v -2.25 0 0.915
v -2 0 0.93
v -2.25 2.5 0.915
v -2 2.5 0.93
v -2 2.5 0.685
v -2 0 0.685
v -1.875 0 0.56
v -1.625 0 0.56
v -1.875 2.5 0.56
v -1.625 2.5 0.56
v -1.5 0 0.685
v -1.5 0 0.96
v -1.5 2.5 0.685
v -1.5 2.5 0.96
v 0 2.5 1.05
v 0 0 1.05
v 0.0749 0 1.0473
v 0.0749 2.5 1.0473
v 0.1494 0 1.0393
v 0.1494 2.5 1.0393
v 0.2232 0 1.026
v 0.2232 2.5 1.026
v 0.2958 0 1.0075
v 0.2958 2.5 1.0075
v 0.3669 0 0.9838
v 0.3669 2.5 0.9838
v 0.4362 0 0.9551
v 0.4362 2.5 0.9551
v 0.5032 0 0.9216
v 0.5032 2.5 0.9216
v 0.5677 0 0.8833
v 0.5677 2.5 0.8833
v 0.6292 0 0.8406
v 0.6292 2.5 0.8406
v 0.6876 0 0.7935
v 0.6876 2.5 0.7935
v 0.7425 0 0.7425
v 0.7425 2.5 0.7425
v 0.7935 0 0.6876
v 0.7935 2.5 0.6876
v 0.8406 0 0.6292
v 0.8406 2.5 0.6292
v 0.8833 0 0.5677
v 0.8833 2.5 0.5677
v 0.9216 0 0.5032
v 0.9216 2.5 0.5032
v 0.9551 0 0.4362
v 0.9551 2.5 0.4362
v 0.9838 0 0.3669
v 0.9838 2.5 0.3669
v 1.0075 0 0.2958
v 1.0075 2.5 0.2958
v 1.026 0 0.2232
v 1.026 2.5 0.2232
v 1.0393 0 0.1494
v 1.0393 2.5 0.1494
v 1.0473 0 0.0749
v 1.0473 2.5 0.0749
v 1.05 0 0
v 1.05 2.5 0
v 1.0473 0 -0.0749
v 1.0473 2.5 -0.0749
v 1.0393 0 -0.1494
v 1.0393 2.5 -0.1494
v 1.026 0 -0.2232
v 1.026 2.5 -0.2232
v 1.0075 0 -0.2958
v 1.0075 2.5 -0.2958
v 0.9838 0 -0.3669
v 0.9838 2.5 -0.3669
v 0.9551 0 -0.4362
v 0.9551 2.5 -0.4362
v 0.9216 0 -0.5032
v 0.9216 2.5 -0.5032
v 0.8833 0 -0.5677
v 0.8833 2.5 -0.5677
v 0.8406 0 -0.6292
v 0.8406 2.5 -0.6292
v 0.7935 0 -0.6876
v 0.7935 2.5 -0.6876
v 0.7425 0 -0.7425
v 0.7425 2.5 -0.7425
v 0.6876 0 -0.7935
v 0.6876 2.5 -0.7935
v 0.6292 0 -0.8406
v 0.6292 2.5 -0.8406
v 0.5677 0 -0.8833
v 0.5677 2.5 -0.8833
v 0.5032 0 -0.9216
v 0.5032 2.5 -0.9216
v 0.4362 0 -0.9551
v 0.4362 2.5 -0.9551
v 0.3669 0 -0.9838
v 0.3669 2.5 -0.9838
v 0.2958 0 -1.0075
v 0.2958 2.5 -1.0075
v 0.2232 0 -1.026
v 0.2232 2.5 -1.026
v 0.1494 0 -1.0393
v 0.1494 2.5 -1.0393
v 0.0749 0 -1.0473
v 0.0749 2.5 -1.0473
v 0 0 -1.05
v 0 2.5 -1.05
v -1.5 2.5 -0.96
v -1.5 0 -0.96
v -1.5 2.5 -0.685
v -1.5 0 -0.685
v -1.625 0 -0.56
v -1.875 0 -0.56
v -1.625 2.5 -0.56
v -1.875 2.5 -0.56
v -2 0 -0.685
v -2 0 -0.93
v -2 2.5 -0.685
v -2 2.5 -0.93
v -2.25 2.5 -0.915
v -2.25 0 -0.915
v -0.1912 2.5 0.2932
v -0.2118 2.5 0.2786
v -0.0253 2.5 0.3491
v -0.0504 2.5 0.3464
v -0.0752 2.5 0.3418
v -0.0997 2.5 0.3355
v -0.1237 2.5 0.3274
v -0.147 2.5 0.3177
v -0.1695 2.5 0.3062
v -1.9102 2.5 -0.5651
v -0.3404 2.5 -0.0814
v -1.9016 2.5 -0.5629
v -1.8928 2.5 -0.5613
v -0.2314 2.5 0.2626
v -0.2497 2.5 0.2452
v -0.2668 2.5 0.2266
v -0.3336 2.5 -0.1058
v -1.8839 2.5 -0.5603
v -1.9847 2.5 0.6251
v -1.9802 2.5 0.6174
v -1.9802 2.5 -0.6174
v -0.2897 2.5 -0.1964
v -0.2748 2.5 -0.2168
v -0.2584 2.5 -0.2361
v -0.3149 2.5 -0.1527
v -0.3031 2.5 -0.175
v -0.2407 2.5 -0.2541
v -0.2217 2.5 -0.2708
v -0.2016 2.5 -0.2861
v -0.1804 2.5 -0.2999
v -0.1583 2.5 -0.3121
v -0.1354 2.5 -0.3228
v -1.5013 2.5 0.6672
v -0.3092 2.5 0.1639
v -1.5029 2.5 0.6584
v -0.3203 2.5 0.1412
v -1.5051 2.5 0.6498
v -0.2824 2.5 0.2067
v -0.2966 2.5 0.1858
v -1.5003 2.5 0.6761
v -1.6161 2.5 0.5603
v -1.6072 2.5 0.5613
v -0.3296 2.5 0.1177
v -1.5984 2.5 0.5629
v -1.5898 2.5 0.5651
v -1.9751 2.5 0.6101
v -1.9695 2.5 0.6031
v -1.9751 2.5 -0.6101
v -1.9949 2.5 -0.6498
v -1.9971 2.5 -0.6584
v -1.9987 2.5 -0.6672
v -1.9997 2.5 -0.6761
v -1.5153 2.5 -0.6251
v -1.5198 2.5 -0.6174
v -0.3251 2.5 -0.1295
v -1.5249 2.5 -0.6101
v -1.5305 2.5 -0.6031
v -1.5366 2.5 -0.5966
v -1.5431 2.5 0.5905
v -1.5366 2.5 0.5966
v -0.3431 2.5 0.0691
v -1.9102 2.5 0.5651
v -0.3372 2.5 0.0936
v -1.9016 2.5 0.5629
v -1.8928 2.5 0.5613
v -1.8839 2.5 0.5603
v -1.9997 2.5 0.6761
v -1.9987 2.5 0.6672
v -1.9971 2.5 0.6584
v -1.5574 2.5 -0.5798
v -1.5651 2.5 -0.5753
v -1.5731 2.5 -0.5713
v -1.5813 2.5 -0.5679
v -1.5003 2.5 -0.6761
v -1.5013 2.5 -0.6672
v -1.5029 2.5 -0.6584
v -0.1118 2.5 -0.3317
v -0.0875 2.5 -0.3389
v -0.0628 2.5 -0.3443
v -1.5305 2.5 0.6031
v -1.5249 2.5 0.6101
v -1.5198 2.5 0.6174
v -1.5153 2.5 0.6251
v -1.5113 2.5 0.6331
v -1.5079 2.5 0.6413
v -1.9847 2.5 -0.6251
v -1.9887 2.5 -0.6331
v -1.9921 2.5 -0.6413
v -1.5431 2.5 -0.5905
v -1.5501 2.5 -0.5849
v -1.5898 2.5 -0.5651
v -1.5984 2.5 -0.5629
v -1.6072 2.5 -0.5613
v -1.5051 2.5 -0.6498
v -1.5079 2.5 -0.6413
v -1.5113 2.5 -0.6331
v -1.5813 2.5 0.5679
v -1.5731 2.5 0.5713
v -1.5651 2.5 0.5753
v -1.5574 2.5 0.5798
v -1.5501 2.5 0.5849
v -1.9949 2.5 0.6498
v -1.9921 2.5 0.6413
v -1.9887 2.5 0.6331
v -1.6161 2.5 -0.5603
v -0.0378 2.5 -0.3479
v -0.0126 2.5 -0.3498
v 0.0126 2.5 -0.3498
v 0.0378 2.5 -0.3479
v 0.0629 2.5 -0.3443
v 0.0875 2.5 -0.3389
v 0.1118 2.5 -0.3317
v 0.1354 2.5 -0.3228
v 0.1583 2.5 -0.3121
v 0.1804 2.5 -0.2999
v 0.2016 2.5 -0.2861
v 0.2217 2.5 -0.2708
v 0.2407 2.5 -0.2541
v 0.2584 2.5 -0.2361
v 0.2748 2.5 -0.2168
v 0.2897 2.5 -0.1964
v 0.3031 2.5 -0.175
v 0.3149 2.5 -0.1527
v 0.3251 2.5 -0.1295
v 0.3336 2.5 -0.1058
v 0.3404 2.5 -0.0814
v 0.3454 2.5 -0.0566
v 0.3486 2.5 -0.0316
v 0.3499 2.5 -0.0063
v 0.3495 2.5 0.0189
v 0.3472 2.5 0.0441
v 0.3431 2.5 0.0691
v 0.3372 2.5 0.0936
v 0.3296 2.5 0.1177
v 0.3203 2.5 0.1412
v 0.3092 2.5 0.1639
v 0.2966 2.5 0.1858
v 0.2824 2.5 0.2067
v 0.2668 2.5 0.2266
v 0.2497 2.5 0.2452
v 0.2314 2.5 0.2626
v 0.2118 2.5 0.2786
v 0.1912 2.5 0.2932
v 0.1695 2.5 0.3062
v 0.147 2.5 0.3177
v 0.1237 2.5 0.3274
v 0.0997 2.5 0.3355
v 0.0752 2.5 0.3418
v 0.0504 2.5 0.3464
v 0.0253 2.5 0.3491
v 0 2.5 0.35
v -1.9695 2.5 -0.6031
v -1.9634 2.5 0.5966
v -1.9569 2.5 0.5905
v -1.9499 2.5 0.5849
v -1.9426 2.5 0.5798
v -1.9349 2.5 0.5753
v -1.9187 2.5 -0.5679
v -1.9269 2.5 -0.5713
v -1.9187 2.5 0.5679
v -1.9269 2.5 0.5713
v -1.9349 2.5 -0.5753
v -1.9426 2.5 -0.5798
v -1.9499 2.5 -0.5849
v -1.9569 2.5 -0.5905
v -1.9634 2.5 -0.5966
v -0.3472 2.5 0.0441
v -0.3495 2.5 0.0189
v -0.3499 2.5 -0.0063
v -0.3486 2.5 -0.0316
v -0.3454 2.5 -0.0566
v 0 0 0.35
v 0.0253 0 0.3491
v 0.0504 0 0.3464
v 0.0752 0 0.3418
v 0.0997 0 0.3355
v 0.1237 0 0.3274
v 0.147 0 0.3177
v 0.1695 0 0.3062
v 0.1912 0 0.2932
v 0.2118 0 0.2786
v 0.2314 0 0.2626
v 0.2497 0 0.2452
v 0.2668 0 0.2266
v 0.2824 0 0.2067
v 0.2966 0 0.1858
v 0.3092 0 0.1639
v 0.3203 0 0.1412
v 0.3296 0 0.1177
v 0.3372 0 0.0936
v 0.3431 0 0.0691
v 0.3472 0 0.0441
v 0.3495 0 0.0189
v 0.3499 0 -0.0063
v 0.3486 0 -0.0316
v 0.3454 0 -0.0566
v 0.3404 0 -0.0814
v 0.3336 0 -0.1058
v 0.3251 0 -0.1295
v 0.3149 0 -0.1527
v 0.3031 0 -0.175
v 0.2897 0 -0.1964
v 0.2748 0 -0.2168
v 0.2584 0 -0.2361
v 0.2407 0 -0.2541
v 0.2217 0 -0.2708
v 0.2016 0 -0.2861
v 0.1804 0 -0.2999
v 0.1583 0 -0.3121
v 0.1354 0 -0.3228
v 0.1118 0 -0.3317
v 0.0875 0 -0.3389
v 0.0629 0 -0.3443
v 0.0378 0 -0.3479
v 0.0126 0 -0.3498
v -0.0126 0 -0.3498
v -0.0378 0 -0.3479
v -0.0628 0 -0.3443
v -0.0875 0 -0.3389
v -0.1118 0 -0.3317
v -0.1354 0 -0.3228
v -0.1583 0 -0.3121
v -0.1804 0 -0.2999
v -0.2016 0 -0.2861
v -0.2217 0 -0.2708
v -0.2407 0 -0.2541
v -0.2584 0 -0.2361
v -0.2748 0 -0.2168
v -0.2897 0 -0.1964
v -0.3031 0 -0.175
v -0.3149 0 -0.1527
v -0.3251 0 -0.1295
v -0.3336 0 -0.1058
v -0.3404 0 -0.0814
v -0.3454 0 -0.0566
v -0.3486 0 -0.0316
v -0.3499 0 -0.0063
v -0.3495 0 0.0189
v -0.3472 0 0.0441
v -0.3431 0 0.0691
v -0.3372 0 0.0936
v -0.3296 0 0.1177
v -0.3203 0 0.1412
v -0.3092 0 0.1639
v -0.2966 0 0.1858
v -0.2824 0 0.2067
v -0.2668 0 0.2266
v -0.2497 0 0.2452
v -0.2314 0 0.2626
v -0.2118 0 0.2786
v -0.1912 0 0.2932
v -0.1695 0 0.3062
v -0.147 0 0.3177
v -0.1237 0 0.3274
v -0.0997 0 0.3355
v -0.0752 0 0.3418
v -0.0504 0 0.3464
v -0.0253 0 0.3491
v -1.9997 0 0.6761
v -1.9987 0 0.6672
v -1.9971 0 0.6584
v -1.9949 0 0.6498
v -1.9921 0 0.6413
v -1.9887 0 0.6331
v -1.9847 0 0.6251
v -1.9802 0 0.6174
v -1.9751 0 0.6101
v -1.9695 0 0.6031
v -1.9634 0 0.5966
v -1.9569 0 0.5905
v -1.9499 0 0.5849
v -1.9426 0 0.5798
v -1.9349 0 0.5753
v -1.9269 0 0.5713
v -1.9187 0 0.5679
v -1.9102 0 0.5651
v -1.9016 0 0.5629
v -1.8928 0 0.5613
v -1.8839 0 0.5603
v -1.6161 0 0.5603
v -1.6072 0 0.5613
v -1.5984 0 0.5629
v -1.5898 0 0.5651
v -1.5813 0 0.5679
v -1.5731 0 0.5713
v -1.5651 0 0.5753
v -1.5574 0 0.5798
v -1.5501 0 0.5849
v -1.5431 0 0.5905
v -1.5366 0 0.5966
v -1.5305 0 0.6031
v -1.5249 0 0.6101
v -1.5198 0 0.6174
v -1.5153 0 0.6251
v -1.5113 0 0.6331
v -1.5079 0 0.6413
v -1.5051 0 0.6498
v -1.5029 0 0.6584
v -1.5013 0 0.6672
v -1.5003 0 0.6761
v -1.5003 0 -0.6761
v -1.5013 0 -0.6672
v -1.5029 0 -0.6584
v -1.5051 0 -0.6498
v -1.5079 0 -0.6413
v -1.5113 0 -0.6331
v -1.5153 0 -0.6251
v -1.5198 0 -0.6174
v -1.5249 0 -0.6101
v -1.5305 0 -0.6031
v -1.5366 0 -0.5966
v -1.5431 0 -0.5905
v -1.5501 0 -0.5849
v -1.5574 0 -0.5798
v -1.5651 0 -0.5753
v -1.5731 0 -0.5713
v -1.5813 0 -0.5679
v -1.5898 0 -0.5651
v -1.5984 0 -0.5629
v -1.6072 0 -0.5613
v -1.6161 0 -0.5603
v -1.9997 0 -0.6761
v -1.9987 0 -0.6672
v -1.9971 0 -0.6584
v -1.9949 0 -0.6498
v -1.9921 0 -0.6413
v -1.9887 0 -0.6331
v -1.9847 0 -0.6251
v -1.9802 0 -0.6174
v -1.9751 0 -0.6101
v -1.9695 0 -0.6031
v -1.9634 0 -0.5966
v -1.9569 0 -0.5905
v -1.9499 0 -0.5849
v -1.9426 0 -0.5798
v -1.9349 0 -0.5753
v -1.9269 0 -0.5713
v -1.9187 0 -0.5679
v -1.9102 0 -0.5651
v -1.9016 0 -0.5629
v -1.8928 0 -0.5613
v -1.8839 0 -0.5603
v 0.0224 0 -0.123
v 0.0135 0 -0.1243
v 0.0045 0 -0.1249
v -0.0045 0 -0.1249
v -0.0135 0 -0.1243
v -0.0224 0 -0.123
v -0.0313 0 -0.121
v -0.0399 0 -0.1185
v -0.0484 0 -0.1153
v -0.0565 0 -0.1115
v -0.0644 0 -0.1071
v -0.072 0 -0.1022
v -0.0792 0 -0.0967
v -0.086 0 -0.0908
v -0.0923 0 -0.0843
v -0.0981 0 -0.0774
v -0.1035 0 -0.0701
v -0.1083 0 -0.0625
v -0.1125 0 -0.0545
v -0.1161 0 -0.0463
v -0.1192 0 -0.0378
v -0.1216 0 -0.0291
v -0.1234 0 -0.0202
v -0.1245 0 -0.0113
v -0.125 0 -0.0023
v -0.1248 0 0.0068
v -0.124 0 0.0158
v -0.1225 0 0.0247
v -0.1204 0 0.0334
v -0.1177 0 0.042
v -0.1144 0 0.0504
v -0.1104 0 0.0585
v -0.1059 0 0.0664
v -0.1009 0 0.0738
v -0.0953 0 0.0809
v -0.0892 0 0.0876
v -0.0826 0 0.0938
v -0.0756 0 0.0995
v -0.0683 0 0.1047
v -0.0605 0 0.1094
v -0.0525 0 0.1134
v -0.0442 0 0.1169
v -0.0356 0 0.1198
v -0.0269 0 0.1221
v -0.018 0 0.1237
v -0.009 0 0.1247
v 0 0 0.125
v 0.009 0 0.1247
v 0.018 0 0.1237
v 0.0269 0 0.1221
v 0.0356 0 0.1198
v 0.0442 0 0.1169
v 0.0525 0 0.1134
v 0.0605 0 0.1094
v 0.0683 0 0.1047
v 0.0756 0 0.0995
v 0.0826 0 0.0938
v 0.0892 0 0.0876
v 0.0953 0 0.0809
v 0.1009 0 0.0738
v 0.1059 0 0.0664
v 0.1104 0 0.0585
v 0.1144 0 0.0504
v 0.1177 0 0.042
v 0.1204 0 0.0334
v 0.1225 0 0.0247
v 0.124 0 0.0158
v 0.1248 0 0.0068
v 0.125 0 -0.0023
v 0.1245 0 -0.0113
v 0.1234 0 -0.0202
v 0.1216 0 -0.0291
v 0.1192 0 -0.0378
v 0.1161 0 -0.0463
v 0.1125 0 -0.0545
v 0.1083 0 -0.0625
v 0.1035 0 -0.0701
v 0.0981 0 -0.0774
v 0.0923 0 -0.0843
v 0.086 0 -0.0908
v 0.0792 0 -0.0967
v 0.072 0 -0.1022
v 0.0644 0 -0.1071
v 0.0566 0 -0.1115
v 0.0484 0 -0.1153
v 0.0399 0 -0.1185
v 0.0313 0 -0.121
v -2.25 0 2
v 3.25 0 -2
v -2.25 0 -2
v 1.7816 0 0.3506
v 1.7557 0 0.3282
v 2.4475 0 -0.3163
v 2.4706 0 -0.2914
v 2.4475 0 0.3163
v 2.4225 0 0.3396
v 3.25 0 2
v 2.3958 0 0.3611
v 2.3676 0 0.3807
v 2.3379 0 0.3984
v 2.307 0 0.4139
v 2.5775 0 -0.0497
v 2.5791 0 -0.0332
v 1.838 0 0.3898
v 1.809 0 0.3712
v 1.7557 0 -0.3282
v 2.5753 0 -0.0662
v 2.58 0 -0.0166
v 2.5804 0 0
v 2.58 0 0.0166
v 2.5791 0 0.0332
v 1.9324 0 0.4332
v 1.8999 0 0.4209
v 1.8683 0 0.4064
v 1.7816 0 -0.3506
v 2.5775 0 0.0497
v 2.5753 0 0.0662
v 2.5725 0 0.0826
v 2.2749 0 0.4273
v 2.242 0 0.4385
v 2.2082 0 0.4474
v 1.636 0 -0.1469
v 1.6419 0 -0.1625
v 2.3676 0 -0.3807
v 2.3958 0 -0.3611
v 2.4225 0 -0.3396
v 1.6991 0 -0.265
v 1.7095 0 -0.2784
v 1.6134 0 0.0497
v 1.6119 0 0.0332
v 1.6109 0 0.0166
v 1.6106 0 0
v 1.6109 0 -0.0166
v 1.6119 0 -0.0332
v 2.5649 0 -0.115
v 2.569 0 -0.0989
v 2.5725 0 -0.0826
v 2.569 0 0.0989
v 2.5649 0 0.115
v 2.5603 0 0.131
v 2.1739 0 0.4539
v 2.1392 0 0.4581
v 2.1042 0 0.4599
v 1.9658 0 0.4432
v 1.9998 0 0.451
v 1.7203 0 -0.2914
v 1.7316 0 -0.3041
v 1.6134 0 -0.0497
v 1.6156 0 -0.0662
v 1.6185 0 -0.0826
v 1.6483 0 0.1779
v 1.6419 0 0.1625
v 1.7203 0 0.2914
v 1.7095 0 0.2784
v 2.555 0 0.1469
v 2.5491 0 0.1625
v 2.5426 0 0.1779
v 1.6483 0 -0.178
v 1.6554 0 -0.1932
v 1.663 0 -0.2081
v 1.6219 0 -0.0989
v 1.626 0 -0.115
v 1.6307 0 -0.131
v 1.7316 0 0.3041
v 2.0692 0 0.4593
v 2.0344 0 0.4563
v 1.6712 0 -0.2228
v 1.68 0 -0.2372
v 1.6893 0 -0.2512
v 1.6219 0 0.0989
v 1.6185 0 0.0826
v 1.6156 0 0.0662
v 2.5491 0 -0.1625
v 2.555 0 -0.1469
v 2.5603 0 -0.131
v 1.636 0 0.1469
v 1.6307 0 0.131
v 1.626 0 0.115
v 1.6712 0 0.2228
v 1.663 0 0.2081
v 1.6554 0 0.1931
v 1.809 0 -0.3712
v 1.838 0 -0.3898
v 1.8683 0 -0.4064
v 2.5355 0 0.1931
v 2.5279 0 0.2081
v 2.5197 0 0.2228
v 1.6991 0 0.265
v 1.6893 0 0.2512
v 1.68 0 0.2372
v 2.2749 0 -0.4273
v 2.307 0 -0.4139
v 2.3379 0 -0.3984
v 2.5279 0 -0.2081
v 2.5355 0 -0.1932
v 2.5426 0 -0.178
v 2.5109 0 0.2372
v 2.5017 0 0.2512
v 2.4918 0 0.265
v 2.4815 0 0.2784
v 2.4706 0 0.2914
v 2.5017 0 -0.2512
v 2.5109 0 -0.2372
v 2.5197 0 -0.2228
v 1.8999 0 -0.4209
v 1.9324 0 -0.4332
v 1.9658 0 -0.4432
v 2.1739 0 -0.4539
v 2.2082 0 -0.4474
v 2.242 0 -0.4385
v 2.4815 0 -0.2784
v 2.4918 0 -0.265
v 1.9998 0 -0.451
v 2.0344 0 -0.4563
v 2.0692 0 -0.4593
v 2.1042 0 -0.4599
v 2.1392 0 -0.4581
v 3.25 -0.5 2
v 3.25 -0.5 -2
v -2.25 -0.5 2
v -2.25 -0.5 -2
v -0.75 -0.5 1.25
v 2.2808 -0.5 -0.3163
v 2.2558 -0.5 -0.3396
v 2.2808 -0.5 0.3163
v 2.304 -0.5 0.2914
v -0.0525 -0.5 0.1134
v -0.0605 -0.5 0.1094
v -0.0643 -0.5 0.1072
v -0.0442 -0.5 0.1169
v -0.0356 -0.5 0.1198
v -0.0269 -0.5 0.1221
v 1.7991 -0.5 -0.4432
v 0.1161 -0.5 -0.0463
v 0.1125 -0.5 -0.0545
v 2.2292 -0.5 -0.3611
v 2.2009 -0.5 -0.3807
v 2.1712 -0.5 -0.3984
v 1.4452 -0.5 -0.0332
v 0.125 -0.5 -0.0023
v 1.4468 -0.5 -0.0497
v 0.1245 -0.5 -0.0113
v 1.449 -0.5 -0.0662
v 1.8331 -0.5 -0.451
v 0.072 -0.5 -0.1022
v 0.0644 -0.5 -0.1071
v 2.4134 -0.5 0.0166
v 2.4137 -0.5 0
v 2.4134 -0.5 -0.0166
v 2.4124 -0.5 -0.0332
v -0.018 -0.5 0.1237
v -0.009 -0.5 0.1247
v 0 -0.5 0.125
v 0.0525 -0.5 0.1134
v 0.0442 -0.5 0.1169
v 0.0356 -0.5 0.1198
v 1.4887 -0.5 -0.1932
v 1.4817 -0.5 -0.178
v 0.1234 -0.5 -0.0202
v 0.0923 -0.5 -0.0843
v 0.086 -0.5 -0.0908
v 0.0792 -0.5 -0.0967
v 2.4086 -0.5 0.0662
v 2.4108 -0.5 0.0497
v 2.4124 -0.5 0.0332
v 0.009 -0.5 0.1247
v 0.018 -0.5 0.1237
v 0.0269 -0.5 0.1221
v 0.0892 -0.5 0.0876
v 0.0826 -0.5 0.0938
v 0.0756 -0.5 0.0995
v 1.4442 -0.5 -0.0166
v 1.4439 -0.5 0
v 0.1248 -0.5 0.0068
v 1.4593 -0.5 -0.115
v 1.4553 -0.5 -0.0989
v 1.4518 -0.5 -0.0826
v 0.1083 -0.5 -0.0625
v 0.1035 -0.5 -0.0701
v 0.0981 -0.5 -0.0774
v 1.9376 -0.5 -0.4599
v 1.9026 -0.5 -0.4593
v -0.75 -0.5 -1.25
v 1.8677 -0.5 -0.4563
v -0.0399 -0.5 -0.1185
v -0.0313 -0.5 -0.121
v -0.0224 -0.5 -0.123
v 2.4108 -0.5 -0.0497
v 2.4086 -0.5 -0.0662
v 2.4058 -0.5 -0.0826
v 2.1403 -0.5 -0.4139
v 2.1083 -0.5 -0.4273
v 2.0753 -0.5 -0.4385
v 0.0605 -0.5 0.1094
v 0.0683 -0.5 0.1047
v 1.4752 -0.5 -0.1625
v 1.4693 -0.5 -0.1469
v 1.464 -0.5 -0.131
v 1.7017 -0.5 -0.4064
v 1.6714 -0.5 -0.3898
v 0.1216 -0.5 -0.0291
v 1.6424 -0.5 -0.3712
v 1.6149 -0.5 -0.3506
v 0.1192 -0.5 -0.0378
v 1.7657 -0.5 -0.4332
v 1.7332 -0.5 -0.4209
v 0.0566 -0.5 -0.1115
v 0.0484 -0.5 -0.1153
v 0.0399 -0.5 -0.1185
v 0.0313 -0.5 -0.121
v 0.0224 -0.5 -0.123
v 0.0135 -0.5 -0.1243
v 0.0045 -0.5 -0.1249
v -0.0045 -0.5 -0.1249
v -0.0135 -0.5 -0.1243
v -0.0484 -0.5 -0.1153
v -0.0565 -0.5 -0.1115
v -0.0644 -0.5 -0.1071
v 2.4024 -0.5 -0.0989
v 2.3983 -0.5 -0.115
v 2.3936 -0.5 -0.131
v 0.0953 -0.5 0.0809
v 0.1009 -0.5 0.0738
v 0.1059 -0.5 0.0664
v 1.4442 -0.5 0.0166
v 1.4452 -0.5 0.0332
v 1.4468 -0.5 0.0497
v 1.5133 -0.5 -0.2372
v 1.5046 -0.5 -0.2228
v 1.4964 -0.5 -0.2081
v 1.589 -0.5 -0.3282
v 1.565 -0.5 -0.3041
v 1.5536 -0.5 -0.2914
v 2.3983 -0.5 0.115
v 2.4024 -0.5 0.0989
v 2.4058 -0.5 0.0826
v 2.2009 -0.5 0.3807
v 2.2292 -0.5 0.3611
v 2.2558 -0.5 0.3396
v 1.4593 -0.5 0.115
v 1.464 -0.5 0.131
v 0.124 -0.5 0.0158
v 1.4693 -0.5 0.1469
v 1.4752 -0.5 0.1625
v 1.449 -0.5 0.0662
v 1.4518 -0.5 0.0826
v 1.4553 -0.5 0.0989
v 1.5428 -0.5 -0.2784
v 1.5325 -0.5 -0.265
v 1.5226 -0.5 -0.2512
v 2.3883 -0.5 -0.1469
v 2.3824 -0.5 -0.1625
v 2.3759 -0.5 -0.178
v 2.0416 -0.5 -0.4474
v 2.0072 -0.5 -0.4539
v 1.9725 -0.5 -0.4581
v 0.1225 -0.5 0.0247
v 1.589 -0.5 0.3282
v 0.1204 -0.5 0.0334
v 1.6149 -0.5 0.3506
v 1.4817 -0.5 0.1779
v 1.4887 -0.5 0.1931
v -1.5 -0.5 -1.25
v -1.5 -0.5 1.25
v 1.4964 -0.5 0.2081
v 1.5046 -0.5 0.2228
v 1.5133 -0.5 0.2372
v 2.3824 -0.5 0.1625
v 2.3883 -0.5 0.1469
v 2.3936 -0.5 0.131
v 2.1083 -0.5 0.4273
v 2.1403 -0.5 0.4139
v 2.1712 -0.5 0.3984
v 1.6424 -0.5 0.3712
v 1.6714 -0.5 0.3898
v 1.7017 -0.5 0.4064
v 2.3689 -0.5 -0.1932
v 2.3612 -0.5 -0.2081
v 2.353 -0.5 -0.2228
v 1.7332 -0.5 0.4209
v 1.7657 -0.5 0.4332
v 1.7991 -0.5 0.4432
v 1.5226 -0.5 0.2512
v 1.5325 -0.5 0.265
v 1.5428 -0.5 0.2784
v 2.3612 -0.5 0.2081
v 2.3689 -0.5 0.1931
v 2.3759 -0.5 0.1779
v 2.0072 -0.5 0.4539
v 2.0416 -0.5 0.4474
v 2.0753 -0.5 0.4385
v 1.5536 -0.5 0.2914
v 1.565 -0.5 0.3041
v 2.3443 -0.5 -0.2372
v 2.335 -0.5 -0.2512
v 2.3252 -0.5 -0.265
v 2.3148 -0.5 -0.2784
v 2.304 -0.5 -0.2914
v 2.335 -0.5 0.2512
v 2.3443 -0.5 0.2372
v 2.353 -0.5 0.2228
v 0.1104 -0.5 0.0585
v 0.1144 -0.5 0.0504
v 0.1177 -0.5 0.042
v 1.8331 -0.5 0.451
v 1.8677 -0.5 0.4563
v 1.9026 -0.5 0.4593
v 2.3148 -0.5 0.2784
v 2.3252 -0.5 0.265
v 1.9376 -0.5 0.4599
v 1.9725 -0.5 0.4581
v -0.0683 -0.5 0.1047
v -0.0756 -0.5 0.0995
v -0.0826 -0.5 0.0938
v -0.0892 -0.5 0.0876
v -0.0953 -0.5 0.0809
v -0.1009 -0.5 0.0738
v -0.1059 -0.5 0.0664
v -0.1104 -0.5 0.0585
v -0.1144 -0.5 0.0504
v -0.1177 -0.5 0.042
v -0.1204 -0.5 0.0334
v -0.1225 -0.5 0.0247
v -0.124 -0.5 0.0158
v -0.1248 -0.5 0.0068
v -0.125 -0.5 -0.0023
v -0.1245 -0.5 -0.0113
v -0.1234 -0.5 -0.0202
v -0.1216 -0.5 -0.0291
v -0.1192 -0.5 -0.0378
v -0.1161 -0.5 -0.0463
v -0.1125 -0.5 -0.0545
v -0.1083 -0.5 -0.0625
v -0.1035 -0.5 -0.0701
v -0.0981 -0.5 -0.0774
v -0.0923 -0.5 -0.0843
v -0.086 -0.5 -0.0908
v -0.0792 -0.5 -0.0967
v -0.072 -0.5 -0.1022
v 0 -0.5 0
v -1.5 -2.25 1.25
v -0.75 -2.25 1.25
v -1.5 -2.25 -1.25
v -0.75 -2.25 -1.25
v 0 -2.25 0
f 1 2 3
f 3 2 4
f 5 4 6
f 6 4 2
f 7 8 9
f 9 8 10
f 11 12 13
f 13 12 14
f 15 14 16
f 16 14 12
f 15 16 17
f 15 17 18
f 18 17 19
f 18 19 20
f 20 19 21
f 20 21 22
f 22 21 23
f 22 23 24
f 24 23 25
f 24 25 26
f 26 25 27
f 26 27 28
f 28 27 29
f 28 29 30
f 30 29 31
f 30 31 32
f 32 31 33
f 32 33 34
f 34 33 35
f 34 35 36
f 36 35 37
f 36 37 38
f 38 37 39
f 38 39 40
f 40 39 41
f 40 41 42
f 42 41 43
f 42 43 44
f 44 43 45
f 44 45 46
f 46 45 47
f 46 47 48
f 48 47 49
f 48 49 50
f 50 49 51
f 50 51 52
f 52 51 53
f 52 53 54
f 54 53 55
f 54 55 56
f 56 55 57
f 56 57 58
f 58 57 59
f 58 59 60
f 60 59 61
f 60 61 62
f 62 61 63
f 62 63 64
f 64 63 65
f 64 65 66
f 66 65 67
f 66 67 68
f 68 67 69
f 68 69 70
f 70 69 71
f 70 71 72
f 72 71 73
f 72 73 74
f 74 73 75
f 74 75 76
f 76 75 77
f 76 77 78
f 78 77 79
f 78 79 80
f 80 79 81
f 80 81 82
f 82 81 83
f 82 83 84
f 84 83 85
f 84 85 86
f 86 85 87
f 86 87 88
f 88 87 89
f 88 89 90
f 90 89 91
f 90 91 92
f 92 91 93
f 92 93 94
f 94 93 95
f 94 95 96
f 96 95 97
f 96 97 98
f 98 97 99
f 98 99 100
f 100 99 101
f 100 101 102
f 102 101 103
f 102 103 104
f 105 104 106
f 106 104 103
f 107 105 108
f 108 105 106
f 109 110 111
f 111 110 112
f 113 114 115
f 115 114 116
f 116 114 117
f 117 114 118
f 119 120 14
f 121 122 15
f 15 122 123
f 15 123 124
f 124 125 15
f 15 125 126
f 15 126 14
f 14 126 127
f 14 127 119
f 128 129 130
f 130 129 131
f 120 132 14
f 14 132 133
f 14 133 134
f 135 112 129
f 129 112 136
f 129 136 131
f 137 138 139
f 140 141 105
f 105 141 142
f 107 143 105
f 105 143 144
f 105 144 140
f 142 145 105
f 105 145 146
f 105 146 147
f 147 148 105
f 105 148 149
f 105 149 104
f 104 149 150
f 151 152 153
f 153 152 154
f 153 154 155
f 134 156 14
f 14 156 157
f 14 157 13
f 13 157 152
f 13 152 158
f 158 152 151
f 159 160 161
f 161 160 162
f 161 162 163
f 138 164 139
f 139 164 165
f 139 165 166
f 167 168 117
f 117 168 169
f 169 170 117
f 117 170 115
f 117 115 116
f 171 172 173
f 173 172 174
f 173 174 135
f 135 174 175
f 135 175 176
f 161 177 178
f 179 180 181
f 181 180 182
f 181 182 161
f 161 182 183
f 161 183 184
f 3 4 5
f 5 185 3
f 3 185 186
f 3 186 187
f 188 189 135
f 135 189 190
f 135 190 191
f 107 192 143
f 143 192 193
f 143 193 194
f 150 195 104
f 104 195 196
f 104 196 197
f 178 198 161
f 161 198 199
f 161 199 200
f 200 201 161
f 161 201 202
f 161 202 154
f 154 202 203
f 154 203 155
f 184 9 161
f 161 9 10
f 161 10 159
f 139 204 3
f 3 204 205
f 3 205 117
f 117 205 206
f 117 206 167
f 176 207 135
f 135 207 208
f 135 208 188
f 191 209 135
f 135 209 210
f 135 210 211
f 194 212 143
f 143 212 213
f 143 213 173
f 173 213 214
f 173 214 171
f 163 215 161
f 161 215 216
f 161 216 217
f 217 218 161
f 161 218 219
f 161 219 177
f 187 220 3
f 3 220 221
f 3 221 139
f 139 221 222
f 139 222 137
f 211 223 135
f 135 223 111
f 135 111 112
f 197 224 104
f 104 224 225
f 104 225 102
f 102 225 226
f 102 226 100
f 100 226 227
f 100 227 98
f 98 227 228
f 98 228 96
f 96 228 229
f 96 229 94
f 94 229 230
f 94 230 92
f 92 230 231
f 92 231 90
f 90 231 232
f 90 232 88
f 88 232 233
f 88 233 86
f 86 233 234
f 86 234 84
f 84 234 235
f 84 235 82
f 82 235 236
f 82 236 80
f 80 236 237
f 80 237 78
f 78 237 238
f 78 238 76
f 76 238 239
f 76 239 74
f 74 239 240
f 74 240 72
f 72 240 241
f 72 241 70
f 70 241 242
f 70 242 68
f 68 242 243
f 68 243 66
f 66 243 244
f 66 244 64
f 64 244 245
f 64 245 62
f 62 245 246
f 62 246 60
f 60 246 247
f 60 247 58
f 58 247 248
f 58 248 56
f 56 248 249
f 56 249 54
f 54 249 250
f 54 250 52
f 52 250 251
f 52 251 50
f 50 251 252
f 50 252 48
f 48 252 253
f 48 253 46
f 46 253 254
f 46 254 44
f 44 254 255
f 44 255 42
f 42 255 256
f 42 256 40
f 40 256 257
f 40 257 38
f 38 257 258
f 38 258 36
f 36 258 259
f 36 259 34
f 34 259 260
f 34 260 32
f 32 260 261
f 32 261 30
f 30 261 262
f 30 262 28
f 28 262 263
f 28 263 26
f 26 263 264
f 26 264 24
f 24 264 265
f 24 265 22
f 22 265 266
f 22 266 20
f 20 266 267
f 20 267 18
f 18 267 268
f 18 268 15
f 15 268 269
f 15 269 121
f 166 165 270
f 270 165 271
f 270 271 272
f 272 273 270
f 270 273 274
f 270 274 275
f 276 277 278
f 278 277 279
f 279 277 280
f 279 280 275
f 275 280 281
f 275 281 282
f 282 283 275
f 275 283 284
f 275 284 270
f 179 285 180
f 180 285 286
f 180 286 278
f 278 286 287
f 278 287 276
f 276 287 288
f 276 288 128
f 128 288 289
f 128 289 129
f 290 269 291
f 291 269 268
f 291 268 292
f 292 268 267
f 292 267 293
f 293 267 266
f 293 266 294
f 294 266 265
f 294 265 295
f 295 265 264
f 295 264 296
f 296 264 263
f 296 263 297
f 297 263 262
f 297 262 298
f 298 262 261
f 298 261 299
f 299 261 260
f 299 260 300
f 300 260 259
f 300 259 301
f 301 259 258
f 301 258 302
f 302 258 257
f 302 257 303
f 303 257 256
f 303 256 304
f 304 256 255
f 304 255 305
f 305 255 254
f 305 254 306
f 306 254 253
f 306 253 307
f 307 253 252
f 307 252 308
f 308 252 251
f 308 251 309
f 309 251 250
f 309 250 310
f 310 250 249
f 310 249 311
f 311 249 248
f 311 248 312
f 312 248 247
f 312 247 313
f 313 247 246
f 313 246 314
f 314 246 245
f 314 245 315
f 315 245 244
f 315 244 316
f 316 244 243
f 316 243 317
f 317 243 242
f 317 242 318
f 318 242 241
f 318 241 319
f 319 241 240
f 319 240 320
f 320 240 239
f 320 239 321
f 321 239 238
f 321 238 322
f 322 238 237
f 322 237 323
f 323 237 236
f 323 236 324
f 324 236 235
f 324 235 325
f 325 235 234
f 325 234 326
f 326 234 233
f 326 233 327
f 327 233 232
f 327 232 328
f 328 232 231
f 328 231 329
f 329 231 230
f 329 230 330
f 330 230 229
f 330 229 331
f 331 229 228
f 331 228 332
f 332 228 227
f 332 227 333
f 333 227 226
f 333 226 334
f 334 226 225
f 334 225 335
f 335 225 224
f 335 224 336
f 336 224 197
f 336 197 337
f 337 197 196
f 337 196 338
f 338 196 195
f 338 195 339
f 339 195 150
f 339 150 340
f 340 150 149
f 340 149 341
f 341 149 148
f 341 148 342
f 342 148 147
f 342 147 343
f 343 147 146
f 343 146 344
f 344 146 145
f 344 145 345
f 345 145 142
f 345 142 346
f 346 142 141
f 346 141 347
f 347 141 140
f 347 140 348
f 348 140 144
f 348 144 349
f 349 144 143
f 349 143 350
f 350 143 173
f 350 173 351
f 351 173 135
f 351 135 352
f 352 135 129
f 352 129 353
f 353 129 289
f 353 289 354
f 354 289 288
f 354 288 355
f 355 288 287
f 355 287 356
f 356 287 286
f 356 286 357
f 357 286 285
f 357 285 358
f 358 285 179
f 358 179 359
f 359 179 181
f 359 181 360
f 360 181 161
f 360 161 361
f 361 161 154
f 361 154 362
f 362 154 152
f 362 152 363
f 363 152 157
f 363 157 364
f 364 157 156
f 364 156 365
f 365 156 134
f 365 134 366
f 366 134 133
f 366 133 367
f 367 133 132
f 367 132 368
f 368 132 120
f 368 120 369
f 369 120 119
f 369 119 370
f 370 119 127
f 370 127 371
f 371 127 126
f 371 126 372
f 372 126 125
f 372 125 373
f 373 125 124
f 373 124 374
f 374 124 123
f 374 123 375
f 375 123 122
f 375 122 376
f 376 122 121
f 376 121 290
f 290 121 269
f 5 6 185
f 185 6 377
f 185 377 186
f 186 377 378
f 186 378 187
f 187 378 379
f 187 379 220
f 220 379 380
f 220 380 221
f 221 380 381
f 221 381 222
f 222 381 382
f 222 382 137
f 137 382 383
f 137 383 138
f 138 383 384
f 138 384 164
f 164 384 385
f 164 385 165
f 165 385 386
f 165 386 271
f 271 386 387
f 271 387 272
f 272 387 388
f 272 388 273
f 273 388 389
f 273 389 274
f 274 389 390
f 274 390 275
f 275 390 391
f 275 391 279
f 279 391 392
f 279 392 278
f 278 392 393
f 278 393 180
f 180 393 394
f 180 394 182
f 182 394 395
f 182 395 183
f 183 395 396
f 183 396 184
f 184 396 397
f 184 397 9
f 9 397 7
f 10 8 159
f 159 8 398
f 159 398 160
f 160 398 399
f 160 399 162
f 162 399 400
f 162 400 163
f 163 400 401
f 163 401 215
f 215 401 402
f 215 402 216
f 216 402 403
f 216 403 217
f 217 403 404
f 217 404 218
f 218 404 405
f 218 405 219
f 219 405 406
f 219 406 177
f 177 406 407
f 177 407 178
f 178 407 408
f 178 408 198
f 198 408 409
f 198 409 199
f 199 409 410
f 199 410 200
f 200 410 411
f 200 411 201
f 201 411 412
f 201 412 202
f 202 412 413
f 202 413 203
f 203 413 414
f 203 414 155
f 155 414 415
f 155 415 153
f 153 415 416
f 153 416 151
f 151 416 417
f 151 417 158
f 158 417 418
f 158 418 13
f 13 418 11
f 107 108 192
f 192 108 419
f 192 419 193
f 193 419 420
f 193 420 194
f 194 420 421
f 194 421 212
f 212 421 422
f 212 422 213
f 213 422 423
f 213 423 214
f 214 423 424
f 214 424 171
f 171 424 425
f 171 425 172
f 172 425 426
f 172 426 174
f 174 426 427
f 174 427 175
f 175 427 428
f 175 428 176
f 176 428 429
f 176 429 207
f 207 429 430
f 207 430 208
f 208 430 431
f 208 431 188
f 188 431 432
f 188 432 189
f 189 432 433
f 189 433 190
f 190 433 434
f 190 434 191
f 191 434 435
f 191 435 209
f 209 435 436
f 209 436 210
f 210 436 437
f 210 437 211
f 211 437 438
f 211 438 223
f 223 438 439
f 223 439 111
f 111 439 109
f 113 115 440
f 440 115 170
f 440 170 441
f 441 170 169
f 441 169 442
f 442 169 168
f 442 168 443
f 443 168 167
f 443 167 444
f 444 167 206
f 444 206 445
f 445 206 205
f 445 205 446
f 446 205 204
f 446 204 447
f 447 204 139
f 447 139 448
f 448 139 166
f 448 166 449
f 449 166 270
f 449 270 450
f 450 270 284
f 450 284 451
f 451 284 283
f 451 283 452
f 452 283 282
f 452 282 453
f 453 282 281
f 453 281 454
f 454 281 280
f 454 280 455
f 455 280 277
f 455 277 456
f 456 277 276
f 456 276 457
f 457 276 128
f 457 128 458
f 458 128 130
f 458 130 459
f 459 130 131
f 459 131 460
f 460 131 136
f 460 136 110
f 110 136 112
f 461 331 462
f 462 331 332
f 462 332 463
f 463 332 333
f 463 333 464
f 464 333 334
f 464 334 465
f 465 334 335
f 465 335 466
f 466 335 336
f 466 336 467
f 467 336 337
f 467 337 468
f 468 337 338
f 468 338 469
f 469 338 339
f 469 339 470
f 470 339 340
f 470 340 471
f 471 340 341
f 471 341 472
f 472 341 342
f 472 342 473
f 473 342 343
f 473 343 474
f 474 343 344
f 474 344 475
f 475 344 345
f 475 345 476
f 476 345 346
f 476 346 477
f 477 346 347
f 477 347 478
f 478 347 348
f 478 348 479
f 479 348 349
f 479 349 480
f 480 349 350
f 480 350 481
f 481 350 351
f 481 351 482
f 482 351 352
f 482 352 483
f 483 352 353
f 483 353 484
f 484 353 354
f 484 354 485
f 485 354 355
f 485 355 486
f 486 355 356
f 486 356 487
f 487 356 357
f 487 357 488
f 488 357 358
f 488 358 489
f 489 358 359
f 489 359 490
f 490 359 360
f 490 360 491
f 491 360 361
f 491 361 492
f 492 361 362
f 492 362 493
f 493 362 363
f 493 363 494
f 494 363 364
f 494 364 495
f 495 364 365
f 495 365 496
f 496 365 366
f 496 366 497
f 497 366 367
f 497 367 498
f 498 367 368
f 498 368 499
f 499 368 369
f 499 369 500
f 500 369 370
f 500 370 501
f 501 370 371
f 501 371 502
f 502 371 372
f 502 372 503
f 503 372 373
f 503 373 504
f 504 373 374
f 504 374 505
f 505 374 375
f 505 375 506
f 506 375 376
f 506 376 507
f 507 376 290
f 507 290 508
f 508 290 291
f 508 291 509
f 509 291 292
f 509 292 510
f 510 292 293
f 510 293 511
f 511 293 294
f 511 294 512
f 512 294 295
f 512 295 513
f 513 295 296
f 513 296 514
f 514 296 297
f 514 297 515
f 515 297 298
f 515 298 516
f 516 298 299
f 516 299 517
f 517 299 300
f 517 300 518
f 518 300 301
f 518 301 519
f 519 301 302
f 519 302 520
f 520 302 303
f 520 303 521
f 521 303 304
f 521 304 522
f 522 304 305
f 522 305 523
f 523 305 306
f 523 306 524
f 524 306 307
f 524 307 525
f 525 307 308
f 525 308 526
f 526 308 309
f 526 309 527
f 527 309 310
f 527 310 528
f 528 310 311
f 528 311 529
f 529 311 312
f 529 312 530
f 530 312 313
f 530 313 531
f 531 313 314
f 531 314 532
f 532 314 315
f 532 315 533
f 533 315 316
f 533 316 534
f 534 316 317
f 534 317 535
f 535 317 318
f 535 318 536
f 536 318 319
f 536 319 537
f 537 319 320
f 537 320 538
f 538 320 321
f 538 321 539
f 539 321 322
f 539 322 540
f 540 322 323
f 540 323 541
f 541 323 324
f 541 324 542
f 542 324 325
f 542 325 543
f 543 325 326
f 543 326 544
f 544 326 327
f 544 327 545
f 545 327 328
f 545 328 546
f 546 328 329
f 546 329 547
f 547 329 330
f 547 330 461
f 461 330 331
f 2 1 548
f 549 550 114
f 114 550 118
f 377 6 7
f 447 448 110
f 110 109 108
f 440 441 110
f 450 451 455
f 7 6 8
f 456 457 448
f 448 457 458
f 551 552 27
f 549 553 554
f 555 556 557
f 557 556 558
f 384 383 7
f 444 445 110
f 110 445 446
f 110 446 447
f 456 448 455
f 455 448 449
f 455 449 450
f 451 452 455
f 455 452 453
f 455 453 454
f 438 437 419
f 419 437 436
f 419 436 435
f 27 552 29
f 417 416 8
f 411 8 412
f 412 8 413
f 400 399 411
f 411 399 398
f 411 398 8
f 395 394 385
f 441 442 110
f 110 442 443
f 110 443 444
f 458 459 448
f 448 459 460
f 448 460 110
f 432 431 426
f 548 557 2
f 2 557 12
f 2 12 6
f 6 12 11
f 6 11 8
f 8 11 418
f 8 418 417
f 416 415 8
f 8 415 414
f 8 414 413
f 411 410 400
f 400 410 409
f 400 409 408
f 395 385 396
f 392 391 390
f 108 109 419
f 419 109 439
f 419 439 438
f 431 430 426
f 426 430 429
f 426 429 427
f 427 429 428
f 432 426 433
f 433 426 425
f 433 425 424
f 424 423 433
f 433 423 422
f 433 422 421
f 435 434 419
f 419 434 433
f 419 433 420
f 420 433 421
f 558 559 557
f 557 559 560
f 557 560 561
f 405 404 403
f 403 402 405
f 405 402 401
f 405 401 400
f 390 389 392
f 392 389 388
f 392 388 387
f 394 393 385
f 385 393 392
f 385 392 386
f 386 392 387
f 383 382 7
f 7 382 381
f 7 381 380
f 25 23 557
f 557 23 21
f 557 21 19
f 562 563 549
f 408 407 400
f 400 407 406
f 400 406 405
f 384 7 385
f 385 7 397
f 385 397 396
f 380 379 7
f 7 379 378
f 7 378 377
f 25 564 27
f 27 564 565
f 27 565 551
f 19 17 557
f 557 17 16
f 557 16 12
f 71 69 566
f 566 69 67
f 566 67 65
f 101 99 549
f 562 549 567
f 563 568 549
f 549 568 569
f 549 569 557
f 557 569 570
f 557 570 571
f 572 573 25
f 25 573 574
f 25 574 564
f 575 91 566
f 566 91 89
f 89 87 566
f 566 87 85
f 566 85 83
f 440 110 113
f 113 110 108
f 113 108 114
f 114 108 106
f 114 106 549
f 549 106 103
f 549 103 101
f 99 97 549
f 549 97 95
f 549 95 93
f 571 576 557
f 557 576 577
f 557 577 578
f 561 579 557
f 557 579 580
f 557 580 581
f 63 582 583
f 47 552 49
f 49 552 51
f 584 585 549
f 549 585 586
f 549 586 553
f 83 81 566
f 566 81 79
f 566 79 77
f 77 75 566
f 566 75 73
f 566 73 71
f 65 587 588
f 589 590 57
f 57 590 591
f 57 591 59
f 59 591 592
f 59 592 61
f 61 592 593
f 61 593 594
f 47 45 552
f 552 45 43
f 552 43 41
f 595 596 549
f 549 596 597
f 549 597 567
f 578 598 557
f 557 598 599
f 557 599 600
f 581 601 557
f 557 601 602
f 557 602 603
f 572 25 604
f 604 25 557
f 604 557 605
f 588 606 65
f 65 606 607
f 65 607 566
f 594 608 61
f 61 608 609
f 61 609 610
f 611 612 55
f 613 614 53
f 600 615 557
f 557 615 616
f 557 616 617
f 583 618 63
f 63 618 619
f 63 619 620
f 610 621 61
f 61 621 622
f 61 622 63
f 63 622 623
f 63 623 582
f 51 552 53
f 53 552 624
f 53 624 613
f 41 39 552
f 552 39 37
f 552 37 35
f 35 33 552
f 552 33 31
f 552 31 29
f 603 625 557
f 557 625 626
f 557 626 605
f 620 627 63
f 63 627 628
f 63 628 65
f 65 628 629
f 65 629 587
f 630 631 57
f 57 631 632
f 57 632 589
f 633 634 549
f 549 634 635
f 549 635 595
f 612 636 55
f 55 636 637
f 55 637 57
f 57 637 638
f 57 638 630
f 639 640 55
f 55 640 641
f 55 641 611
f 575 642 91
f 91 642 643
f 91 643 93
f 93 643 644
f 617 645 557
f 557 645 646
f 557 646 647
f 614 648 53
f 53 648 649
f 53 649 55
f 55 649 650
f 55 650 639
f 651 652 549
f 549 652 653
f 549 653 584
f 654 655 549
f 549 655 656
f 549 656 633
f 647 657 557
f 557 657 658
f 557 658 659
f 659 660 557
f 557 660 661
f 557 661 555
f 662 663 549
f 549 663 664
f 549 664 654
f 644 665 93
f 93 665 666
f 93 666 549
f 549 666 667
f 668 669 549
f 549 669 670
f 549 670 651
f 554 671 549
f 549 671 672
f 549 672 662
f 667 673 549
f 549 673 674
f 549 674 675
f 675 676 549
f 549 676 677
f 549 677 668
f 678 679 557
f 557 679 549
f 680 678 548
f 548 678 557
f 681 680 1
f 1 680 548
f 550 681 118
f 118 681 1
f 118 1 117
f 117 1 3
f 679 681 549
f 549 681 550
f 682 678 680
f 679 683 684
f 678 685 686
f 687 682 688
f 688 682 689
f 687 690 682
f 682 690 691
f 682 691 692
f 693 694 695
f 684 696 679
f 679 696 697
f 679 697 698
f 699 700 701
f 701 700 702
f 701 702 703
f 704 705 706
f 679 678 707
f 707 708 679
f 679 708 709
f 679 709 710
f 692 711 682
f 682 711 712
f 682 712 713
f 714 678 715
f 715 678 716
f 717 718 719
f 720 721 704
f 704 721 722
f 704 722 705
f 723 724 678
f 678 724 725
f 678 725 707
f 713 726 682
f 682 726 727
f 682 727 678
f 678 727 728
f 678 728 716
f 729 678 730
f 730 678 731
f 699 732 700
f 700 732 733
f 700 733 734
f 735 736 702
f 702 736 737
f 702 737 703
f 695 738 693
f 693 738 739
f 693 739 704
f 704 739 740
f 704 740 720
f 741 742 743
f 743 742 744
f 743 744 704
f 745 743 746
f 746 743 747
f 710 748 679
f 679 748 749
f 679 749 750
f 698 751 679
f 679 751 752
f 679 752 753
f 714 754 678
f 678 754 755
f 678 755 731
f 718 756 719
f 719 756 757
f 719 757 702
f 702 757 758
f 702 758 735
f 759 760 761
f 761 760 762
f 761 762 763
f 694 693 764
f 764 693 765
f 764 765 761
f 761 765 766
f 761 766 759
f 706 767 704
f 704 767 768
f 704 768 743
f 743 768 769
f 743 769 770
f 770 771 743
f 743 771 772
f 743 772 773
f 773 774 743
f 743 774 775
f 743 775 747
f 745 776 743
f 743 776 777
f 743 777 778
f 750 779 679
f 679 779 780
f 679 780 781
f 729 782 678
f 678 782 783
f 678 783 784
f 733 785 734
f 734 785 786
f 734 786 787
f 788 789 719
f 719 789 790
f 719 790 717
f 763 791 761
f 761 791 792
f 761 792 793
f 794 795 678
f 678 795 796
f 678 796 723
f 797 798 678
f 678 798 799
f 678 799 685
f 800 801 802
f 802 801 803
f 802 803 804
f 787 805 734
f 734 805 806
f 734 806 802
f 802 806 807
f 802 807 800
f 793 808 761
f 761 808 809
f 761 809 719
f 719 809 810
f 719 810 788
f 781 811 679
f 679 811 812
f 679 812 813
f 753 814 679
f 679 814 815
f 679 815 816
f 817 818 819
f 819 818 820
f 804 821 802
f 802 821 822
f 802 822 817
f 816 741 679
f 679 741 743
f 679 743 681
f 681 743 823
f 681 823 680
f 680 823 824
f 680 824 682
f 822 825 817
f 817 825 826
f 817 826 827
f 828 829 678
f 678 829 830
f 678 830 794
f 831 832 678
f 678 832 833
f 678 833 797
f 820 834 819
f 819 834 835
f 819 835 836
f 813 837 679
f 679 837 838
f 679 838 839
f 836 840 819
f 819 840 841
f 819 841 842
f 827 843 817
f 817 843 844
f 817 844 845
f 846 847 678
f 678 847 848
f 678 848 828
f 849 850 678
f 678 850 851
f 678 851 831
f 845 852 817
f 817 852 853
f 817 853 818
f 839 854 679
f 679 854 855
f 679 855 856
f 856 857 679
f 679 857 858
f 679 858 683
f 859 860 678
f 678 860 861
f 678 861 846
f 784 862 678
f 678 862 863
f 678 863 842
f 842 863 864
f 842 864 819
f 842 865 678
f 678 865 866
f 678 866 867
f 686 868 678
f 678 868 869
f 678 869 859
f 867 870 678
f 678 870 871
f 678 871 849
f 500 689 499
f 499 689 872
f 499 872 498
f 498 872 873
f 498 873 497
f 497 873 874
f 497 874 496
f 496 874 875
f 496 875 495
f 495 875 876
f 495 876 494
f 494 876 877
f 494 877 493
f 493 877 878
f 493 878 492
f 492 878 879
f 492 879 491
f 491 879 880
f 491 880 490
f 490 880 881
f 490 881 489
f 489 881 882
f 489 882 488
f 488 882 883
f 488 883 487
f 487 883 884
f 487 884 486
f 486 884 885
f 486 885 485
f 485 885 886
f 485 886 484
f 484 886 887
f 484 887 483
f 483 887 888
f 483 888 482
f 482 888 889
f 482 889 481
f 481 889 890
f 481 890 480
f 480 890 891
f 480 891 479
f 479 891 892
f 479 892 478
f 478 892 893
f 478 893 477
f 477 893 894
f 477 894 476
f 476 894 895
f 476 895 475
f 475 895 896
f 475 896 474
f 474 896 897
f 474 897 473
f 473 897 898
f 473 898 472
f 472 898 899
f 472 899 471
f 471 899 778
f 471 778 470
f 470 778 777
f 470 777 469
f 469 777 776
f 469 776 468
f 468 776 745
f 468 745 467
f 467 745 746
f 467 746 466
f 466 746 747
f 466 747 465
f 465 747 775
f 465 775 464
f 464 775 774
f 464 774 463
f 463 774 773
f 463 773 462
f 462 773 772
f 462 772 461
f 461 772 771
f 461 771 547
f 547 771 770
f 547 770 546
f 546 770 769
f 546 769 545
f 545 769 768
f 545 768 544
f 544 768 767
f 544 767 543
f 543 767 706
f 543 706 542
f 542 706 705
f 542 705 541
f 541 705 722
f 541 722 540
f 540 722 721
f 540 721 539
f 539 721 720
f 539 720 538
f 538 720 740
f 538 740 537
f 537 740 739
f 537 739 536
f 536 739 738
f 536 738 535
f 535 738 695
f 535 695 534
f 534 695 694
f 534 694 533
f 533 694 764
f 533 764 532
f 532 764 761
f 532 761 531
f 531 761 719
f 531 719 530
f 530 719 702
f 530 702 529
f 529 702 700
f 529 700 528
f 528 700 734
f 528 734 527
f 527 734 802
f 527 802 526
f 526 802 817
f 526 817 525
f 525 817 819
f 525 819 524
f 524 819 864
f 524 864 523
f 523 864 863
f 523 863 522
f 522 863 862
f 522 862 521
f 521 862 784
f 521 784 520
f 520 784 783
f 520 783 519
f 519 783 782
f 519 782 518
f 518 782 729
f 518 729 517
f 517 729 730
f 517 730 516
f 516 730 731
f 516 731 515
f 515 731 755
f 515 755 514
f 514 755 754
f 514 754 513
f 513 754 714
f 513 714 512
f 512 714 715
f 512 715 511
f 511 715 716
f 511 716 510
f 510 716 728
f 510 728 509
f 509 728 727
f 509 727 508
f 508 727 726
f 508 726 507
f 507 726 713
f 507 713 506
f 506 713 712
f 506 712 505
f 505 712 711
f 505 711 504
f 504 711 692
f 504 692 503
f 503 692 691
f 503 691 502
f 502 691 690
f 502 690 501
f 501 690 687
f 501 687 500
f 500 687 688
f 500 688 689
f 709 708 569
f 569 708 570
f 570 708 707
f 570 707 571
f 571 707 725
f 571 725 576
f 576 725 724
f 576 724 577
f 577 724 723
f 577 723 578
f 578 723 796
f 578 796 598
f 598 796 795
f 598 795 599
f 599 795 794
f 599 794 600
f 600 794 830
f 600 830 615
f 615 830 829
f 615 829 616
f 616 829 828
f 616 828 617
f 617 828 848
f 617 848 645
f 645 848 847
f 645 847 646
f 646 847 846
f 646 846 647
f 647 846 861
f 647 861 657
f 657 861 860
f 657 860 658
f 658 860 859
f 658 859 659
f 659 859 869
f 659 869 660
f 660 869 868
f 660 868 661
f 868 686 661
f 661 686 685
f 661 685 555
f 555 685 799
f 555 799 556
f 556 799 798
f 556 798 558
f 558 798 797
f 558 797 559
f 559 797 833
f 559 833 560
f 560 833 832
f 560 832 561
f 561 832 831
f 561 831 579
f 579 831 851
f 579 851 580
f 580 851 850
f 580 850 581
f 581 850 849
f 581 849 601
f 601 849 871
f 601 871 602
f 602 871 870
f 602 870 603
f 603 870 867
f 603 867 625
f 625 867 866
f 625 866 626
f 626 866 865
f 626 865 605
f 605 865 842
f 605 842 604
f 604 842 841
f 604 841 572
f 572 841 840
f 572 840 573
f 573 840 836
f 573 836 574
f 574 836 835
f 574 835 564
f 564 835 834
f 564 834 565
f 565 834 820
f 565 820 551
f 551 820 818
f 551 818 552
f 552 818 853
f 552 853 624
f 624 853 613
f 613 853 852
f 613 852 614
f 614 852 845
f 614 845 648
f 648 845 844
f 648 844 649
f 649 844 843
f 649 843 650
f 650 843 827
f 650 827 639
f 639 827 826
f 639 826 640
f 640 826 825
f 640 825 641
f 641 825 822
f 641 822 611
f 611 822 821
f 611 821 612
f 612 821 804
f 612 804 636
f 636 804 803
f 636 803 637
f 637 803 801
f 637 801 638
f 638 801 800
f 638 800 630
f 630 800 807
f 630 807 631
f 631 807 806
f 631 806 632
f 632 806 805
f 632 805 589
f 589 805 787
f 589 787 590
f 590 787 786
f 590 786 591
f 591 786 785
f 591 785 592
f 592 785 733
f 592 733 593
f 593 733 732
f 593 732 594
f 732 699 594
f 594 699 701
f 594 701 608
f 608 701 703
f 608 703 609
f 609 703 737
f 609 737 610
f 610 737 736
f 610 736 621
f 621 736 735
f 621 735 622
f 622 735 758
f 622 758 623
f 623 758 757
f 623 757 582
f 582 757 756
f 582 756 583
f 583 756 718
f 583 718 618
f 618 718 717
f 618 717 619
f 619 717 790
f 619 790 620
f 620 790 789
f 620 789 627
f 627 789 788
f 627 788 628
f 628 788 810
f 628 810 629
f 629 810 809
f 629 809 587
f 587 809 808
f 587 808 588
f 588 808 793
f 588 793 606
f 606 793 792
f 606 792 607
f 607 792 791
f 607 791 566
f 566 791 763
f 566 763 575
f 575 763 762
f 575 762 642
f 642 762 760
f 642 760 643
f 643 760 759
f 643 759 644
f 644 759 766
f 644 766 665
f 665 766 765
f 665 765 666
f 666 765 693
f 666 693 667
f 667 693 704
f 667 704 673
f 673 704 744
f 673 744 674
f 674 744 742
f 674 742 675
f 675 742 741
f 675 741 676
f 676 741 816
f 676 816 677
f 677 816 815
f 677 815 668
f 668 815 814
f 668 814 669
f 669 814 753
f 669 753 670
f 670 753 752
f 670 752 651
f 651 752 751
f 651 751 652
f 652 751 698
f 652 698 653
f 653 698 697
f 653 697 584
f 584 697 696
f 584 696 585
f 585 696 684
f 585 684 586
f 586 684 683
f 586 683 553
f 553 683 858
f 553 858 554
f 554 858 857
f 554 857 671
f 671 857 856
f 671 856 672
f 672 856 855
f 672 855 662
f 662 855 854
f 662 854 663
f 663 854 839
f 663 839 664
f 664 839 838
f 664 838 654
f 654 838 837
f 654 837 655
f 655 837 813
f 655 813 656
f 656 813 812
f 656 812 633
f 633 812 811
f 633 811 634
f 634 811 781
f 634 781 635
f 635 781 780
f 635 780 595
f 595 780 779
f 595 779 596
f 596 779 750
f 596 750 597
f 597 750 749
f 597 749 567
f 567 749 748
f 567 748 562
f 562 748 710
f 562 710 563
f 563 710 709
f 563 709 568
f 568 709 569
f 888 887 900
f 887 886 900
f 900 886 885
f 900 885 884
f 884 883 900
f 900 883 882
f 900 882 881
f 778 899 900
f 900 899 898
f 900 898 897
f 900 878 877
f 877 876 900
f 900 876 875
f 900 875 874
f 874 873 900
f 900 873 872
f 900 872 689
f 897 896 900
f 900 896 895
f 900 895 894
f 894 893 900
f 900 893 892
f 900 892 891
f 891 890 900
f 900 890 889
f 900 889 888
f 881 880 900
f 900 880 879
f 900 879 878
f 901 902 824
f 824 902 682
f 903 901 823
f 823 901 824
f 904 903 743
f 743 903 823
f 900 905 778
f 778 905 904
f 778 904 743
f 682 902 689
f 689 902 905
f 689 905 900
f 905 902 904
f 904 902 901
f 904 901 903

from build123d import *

# Parameters (mm, degrees)
BOSS_EXTRUDE1_DEPTH     = 2.5
SKETCH4_R               = 0.35
THROUGH_HOLES_DEPTH     = 4.688156721
FILLET1_R               = 0.125
SKETCH5_R               = 0.125
BOSS_EXTRUDE2_DEPTH     = 0.5
SKETCH8_R               = 0.46
CUT_EXTRUDE1_DEPTH      = 5.582575695
CUT_EXTRUDE2_DEPTH      = 5.562071898
CUT_EXTRUDE2_DEPTH_BACK = 5.562071898
SKETCH9_W               = 1.465031661
SKETCH9_H               = 4
BOSS_EXTRUDE3_DEPTH     = 1.75


with BuildPart() as part:
    # Sketch3 → Boss-Extrude1 (new body)
    with BuildSketch(Plane(origin=(0, 0, 0), x_dir=(1, 0, 0), z_dir=(0, 1, 0))):
        with BuildLine():
            Line((-2.5, 0.9), (-2, 0.93))
            Line((-2, 0.93), (-2, 0.56))
            Line((-2, 0.56), (-1.5, 0.56))
            Line((-1.5, 0.56), (-1.5, 0.96))
            Line((-1.5, 0.96), (0, 1.05))
            ThreePointArc((0, 1.05), (1.05, 0), (0, -1.05))
            Line((0, -1.05), (-1.5, -0.96))
            Line((-1.5, -0.96), (-1.5, -0.56))
            Line((-1.5, -0.56), (-2, -0.56))
            Line((-2, -0.56), (-2, -0.93))
            Line((-2, -0.93), (-2.5, -0.9))
            Line((-2.5, -0.9), (-2.5, 0.9))
        make_face()
    extrude(amount=BOSS_EXTRUDE1_DEPTH)

    # Sketch4 → Through Holes (cut, through all)
    with BuildSketch(Plane(origin=(0, 2.5, 0), x_dir=(1, 0, 0), z_dir=(0, 1, 0))):
        with Locations(Location((0, 0, 0), (0, 0, 270))):
            Circle(SKETCH4_R)
    extrude(amount=-THROUGH_HOLES_DEPTH, mode=Mode.SUBTRACT)

    # Fillet1
    fillet1_edges = [part.edges().sort_by_distance(p)[0] for p in [
        (-2, 1.25, -0.56),
        (-1.5, 1.25, -0.56),
        (-1.5, 1.25, 0.56),
        (-2, 1.25, 0.56),
    ]]
    fillet(fillet1_edges, radius=FILLET1_R)

    # Sketch5 → Boss-Extrude2 (add)
    with BuildSketch(Plane(origin=(0, 0, 0), x_dir=(1, 0, 0), z_dir=(0, 1, 0))):
        Polygon((-2.25, -2), (1.75, -2), (3.25, -2), (3.25, 2), (1.75, 2), (-2.25, 2), align=None)
        with Locations(Location((0, 0, 0), (0, 0, 270))):
            Circle(SKETCH5_R, mode=Mode.SUBTRACT)
    extrude(amount=-BOSS_EXTRUDE2_DEPTH)

    # Sketch8 → Cut-Extrude1 (cut, through all)
    with BuildSketch(Plane(origin=(0.7, 2.1, 0), x_dir=(0.948683298050514, -0.3162277660168378, 0), z_dir=(0.3162277660168378, 0.948683298050514, 0))):
        with Locations((1.987936011, 0)):
            Circle(SKETCH8_R)
    extrude(amount=-CUT_EXTRUDE1_DEPTH, mode=Mode.SUBTRACT)

    # Sketch9 → Cut-Extrude2 (cut, two sides: drawn at the far end of the back side and taken through both)
    with BuildSketch(Plane.XZ.offset(-CUT_EXTRUDE2_DEPTH_BACK)):
        with Locations((-2.982515831, 0)):
            Rectangle(SKETCH9_W, SKETCH9_H)
    extrude(amount=CUT_EXTRUDE2_DEPTH + CUT_EXTRUDE2_DEPTH_BACK, mode=Mode.SUBTRACT)

    # Sketch10 → Boss-Extrude3 (add)
    with BuildSketch(Plane.XZ.offset(0.5)):
        Polygon((-1.5, 1.25), (-1.5, -1.25), (-0.75, -1.25), (0, 0), (-0.75, 1.25), align=None)
    extrude(amount=BOSS_EXTRUDE3_DEPTH)


solid = part.part
